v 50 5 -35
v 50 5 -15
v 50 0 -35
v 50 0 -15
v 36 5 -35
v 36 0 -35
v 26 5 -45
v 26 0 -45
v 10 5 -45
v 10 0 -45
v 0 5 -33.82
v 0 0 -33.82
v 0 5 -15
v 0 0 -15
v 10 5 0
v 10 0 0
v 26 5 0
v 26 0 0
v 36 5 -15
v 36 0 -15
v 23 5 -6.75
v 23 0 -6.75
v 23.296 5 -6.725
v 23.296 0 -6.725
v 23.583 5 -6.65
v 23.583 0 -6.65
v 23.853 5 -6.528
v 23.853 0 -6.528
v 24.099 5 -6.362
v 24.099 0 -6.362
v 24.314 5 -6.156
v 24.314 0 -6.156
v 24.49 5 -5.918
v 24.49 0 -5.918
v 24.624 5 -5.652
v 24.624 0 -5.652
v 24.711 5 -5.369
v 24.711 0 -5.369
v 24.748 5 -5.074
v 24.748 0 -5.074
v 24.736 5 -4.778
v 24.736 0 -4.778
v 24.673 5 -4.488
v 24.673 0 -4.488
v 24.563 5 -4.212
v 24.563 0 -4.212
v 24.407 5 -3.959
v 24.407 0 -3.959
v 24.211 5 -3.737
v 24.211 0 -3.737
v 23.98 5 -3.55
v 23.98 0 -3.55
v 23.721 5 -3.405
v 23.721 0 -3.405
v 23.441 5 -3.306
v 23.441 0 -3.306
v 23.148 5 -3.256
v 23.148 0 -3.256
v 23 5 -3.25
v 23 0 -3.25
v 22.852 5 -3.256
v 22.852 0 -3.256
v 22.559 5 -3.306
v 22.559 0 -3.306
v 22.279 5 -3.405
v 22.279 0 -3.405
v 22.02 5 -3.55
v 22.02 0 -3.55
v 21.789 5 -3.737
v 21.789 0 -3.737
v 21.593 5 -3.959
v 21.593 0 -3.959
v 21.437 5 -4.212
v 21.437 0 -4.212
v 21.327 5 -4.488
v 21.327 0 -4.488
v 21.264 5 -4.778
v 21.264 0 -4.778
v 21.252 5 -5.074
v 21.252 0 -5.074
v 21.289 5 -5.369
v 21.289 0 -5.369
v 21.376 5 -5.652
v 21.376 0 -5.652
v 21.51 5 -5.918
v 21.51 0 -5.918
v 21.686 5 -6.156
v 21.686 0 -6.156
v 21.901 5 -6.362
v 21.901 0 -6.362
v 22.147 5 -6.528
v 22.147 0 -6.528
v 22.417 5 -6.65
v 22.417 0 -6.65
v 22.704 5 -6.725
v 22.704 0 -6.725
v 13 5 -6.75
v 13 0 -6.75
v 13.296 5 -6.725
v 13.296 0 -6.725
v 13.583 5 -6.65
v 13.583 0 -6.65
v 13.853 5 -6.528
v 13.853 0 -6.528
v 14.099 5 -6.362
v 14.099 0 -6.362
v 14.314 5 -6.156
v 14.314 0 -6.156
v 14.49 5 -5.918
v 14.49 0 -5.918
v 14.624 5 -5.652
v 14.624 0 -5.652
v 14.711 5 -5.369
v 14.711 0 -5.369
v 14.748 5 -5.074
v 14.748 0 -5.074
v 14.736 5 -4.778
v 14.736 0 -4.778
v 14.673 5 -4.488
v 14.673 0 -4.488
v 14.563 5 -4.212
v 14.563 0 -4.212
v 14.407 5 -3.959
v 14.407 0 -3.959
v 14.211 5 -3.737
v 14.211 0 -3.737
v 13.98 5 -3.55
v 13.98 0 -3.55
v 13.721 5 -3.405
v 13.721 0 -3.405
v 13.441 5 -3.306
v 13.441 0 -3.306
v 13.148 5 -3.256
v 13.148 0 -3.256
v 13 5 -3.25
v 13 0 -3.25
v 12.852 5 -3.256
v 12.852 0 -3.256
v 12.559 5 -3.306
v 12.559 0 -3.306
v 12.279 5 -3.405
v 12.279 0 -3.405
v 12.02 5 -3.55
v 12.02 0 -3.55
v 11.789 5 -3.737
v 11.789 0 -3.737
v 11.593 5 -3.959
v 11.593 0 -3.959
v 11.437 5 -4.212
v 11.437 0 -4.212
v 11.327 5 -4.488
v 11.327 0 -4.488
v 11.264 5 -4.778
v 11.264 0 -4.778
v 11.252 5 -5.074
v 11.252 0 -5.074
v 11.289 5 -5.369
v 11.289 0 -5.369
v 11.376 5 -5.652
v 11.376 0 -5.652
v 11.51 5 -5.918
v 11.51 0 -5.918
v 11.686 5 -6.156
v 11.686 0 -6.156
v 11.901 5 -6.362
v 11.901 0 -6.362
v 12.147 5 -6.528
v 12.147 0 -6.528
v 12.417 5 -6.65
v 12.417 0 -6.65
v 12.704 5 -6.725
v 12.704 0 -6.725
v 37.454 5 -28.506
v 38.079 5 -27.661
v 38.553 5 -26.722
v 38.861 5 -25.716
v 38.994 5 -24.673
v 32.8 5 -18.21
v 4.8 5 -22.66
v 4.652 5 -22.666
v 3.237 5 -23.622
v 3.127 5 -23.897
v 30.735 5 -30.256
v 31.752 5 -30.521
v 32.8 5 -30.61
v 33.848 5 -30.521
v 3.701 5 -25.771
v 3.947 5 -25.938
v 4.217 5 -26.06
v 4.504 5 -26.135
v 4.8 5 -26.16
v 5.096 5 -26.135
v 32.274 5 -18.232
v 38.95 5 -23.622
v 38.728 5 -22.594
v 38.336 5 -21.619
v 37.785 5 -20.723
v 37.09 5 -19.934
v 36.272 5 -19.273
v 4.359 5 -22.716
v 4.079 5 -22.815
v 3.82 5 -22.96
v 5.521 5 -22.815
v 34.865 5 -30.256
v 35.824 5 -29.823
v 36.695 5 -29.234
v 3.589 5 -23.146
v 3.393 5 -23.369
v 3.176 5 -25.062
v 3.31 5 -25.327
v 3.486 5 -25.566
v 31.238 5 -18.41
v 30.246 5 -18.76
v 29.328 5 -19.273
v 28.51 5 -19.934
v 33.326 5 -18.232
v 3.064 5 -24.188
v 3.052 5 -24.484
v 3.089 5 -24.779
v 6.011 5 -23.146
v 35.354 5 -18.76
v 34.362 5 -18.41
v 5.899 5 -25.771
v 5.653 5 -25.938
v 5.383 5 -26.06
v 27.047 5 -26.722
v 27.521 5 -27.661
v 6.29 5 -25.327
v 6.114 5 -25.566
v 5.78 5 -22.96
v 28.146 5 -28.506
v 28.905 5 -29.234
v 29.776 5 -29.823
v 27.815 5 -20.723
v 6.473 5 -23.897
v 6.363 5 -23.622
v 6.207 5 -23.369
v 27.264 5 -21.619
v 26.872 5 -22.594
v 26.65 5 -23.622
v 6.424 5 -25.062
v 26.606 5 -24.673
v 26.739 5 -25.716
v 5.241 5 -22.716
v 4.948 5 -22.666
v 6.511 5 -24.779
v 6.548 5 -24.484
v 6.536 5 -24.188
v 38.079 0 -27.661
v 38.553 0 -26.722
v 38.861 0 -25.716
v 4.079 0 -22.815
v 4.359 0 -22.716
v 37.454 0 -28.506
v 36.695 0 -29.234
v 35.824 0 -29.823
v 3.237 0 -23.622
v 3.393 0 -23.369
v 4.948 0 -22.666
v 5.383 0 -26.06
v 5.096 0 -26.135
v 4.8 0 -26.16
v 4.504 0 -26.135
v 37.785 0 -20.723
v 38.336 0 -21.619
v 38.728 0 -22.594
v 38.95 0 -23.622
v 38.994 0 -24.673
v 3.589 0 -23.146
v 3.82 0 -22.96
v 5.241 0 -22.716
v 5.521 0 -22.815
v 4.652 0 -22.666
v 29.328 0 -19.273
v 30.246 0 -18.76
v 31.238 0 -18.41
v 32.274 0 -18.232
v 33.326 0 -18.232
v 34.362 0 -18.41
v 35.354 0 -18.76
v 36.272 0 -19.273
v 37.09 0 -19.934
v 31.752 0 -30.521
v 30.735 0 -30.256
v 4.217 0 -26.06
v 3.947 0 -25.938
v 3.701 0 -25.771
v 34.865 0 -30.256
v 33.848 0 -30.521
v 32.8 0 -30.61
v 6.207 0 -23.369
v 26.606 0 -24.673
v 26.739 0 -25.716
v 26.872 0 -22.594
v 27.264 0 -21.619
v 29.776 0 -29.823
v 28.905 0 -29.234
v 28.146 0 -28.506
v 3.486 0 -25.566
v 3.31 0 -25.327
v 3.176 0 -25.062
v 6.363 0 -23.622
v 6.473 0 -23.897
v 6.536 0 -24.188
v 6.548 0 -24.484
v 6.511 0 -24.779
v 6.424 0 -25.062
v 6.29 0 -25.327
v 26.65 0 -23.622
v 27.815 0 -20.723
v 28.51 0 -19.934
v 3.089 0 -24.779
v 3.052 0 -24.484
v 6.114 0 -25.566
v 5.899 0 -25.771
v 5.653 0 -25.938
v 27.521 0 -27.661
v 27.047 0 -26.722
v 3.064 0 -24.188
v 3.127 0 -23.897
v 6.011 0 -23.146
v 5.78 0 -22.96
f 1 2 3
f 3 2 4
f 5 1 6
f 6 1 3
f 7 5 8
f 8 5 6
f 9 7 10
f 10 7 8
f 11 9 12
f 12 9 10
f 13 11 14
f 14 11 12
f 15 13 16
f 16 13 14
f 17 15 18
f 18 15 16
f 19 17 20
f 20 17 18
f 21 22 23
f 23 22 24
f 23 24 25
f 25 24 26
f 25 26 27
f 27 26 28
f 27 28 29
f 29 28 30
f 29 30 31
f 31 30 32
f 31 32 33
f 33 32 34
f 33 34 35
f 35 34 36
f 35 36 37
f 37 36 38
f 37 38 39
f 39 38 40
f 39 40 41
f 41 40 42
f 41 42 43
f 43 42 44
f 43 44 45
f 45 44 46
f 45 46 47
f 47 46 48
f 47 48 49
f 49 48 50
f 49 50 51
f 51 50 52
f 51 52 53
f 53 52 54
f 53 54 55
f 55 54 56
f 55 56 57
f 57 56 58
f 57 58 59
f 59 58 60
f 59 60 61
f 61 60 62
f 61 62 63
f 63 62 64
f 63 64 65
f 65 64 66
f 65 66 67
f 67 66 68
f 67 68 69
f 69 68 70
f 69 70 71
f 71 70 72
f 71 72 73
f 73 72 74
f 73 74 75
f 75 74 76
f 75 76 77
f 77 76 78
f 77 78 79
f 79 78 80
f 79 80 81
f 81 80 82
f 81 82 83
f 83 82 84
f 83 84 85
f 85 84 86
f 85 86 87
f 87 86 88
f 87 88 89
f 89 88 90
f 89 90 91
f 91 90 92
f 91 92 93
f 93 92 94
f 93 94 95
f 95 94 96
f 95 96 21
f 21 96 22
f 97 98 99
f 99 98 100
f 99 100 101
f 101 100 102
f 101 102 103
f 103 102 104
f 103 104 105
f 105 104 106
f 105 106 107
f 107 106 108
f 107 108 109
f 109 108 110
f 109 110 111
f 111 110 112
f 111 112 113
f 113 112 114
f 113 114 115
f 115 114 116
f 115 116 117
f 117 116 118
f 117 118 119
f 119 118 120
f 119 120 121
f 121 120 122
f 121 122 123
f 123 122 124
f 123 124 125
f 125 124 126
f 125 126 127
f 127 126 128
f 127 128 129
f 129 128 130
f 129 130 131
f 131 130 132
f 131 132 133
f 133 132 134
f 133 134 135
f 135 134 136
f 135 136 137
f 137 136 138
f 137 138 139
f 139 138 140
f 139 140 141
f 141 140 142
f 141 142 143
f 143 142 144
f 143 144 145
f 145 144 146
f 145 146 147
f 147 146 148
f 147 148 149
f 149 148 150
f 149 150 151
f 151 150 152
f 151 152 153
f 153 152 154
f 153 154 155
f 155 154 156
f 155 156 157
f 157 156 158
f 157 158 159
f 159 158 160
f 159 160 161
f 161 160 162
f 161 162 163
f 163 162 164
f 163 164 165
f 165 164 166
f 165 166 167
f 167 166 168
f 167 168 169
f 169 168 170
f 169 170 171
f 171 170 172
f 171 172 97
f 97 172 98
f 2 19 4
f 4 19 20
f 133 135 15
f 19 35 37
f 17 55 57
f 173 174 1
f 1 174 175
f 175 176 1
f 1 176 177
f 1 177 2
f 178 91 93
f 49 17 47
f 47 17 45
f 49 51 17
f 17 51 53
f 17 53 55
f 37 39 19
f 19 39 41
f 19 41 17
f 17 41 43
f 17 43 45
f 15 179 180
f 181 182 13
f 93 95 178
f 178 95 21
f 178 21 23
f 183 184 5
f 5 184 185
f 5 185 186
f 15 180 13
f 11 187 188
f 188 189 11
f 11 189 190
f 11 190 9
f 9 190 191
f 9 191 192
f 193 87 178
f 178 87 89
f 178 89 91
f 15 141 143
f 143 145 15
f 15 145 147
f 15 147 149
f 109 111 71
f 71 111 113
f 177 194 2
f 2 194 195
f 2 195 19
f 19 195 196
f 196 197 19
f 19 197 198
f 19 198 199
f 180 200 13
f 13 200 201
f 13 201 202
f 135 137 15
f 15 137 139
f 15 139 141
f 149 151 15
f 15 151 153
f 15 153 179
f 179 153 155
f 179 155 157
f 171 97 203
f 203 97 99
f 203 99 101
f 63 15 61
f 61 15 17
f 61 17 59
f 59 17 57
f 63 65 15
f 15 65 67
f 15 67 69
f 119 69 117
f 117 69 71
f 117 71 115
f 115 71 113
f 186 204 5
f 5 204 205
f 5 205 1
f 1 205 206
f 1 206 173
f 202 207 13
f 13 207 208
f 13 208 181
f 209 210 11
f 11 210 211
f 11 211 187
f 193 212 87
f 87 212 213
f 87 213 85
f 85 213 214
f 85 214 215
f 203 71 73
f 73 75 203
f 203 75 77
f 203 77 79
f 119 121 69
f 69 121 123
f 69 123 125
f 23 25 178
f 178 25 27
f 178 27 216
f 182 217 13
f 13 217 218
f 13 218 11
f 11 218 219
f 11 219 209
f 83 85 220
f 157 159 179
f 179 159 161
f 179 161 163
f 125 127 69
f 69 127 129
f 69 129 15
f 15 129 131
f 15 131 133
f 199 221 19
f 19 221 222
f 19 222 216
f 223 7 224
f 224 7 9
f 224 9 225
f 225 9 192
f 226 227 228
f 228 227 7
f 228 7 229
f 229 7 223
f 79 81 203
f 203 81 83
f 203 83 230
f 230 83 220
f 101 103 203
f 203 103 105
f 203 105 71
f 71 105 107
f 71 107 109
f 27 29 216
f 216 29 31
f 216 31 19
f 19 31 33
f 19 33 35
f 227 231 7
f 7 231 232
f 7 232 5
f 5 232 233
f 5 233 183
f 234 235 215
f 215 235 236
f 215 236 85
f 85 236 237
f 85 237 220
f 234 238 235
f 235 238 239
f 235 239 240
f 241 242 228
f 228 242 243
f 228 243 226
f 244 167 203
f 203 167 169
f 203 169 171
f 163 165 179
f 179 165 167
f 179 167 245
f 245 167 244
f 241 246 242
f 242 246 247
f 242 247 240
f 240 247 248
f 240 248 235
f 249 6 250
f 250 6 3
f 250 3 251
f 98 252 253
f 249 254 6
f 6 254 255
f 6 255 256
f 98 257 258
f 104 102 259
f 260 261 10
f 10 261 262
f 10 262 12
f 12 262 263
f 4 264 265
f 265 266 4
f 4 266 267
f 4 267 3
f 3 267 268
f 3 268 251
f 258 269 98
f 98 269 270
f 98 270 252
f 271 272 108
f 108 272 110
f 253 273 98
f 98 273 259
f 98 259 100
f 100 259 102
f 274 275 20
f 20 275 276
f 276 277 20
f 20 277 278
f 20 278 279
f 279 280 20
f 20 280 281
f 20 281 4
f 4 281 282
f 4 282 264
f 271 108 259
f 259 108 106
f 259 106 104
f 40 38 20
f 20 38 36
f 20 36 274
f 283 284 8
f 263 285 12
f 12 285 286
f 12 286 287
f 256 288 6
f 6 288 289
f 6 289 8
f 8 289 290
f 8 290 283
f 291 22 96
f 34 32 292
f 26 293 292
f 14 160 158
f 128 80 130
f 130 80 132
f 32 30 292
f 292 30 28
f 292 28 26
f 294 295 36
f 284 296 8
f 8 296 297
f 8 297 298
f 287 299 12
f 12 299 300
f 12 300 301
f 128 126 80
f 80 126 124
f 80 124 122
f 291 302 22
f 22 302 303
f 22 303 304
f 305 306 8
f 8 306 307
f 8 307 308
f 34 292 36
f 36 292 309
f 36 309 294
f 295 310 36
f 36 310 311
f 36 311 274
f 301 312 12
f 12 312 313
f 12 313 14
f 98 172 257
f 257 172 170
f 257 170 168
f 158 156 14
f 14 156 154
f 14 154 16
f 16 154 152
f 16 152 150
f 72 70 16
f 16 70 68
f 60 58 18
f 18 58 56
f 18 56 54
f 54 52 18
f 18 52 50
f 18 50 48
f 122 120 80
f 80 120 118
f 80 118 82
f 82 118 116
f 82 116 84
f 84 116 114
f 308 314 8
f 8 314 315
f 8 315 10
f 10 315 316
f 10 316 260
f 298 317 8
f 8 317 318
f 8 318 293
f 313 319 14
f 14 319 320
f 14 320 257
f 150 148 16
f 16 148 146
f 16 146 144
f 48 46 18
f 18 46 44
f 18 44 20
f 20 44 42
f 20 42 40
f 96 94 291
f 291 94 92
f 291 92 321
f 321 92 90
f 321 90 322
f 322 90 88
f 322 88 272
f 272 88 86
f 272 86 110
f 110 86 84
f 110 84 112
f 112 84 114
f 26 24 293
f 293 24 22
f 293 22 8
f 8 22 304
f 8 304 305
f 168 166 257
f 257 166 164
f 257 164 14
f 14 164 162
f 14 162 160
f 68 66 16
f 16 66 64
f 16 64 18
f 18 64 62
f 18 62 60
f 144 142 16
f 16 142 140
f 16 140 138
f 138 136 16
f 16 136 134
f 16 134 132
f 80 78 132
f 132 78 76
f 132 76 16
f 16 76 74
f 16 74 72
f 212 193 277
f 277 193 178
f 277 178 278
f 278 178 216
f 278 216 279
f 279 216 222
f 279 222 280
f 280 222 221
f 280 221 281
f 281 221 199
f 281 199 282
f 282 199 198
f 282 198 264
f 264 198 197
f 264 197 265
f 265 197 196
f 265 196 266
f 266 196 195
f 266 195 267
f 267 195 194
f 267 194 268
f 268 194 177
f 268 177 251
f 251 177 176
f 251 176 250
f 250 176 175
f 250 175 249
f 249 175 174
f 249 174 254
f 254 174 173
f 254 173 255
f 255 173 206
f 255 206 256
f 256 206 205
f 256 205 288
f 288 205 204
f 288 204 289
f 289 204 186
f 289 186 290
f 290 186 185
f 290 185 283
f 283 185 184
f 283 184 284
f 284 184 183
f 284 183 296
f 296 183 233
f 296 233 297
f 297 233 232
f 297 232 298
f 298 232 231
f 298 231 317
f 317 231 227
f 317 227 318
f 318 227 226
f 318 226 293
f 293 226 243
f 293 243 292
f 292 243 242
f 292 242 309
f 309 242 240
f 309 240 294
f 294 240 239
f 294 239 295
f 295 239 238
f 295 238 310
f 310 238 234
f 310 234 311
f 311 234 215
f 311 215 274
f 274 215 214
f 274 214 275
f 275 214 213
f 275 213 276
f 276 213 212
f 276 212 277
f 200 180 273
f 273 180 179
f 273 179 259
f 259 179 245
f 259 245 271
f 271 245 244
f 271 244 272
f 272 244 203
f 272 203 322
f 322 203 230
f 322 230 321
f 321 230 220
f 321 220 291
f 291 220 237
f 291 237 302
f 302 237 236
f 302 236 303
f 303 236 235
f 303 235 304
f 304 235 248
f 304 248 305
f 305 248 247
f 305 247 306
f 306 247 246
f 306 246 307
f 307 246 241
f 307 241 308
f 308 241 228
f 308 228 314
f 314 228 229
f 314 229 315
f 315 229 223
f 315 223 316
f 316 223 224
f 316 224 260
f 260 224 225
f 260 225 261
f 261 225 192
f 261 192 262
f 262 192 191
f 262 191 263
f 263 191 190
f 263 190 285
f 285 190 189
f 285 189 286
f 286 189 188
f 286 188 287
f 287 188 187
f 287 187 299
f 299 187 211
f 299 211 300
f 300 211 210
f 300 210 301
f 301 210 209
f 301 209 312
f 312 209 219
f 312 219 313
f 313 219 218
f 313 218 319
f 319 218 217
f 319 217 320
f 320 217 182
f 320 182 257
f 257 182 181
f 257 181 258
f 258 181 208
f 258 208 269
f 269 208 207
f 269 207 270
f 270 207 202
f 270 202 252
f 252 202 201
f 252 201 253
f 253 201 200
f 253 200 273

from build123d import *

# Parameters (mm, degrees)
SKETCH1_R           = 1.75
BOSS_EXTRUDE1_DEPTH = 5
SKETCH2_R           = 1.75
SKETCH2_R_2         = 6.2
CUT_EXTRUDE1_DEPTH  = 10


with BuildPart() as part:
    # Sketch1 → Boss-Extrude1 (new body)
    # profile 1 of 4: a face of its own
    with BuildSketch(Plane(origin=(0, 0, 0), x_dir=(1, 0, 0), z_dir=(0, 1, 0))):
        Polygon((50, 25), (0, 25), (0, 15), (10, 0), (26, 0), (36, 15), (50, 15), align=None)
        with Locations(Location((13, 5, 0), (0, 0, 270))):
            Circle(SKETCH1_R, mode=Mode.SUBTRACT)
        with Locations(Location((23, 5, 0), (0, 0, 270))):
            Circle(SKETCH1_R, mode=Mode.SUBTRACT)
    # profile 2 of 4: a face of its own
    with BuildSketch(Plane(origin=(0, 0, 0), x_dir=(1, 0, 0), z_dir=(0, 1, 0))):
        Polygon((10, 45), (0, 33.819660113), (0, 25), (50, 25), (50, 35), (36, 35), (26, 45), align=None)
    # profile 3 of 4: a face of its own
    with BuildSketch(Plane(origin=(0, 0, 0), x_dir=(1, 0, 0), z_dir=(0, 1, 0))):
        Polygon((10, 45), (0, 33.819660113), (0, 25), (50, 25), (50, 35), (36, 35), (26, 45), align=None)
    # profile 4 of 4: a face of its own
    with BuildSketch(Plane(origin=(0, 0, 0), x_dir=(1, 0, 0), z_dir=(0, 1, 0))):
        Polygon((10, 45), (0, 33.819660113), (0, 25), (50, 25), (50, 35), (36, 35), (26, 45), align=None)
    extrude(amount=BOSS_EXTRUDE1_DEPTH)

    # Sketch2 → Cut-Extrude1 (cut)
    with BuildSketch(Plane(origin=(0, 0, 0), x_dir=(-1, 0, 0), z_dir=(0, -1, 0))):
        with Locations(Location((-4.8, 24.409830056, 0), (0, 0, 90))):
            Circle(SKETCH2_R)
        with Locations(Location((-32.8, 24.409830056, 0), (0, 0, 90))):
            Circle(SKETCH2_R_2)
    extrude(amount=-CUT_EXTRUDE1_DEPTH, mode=Mode.SUBTRACT)


solid = part.part
